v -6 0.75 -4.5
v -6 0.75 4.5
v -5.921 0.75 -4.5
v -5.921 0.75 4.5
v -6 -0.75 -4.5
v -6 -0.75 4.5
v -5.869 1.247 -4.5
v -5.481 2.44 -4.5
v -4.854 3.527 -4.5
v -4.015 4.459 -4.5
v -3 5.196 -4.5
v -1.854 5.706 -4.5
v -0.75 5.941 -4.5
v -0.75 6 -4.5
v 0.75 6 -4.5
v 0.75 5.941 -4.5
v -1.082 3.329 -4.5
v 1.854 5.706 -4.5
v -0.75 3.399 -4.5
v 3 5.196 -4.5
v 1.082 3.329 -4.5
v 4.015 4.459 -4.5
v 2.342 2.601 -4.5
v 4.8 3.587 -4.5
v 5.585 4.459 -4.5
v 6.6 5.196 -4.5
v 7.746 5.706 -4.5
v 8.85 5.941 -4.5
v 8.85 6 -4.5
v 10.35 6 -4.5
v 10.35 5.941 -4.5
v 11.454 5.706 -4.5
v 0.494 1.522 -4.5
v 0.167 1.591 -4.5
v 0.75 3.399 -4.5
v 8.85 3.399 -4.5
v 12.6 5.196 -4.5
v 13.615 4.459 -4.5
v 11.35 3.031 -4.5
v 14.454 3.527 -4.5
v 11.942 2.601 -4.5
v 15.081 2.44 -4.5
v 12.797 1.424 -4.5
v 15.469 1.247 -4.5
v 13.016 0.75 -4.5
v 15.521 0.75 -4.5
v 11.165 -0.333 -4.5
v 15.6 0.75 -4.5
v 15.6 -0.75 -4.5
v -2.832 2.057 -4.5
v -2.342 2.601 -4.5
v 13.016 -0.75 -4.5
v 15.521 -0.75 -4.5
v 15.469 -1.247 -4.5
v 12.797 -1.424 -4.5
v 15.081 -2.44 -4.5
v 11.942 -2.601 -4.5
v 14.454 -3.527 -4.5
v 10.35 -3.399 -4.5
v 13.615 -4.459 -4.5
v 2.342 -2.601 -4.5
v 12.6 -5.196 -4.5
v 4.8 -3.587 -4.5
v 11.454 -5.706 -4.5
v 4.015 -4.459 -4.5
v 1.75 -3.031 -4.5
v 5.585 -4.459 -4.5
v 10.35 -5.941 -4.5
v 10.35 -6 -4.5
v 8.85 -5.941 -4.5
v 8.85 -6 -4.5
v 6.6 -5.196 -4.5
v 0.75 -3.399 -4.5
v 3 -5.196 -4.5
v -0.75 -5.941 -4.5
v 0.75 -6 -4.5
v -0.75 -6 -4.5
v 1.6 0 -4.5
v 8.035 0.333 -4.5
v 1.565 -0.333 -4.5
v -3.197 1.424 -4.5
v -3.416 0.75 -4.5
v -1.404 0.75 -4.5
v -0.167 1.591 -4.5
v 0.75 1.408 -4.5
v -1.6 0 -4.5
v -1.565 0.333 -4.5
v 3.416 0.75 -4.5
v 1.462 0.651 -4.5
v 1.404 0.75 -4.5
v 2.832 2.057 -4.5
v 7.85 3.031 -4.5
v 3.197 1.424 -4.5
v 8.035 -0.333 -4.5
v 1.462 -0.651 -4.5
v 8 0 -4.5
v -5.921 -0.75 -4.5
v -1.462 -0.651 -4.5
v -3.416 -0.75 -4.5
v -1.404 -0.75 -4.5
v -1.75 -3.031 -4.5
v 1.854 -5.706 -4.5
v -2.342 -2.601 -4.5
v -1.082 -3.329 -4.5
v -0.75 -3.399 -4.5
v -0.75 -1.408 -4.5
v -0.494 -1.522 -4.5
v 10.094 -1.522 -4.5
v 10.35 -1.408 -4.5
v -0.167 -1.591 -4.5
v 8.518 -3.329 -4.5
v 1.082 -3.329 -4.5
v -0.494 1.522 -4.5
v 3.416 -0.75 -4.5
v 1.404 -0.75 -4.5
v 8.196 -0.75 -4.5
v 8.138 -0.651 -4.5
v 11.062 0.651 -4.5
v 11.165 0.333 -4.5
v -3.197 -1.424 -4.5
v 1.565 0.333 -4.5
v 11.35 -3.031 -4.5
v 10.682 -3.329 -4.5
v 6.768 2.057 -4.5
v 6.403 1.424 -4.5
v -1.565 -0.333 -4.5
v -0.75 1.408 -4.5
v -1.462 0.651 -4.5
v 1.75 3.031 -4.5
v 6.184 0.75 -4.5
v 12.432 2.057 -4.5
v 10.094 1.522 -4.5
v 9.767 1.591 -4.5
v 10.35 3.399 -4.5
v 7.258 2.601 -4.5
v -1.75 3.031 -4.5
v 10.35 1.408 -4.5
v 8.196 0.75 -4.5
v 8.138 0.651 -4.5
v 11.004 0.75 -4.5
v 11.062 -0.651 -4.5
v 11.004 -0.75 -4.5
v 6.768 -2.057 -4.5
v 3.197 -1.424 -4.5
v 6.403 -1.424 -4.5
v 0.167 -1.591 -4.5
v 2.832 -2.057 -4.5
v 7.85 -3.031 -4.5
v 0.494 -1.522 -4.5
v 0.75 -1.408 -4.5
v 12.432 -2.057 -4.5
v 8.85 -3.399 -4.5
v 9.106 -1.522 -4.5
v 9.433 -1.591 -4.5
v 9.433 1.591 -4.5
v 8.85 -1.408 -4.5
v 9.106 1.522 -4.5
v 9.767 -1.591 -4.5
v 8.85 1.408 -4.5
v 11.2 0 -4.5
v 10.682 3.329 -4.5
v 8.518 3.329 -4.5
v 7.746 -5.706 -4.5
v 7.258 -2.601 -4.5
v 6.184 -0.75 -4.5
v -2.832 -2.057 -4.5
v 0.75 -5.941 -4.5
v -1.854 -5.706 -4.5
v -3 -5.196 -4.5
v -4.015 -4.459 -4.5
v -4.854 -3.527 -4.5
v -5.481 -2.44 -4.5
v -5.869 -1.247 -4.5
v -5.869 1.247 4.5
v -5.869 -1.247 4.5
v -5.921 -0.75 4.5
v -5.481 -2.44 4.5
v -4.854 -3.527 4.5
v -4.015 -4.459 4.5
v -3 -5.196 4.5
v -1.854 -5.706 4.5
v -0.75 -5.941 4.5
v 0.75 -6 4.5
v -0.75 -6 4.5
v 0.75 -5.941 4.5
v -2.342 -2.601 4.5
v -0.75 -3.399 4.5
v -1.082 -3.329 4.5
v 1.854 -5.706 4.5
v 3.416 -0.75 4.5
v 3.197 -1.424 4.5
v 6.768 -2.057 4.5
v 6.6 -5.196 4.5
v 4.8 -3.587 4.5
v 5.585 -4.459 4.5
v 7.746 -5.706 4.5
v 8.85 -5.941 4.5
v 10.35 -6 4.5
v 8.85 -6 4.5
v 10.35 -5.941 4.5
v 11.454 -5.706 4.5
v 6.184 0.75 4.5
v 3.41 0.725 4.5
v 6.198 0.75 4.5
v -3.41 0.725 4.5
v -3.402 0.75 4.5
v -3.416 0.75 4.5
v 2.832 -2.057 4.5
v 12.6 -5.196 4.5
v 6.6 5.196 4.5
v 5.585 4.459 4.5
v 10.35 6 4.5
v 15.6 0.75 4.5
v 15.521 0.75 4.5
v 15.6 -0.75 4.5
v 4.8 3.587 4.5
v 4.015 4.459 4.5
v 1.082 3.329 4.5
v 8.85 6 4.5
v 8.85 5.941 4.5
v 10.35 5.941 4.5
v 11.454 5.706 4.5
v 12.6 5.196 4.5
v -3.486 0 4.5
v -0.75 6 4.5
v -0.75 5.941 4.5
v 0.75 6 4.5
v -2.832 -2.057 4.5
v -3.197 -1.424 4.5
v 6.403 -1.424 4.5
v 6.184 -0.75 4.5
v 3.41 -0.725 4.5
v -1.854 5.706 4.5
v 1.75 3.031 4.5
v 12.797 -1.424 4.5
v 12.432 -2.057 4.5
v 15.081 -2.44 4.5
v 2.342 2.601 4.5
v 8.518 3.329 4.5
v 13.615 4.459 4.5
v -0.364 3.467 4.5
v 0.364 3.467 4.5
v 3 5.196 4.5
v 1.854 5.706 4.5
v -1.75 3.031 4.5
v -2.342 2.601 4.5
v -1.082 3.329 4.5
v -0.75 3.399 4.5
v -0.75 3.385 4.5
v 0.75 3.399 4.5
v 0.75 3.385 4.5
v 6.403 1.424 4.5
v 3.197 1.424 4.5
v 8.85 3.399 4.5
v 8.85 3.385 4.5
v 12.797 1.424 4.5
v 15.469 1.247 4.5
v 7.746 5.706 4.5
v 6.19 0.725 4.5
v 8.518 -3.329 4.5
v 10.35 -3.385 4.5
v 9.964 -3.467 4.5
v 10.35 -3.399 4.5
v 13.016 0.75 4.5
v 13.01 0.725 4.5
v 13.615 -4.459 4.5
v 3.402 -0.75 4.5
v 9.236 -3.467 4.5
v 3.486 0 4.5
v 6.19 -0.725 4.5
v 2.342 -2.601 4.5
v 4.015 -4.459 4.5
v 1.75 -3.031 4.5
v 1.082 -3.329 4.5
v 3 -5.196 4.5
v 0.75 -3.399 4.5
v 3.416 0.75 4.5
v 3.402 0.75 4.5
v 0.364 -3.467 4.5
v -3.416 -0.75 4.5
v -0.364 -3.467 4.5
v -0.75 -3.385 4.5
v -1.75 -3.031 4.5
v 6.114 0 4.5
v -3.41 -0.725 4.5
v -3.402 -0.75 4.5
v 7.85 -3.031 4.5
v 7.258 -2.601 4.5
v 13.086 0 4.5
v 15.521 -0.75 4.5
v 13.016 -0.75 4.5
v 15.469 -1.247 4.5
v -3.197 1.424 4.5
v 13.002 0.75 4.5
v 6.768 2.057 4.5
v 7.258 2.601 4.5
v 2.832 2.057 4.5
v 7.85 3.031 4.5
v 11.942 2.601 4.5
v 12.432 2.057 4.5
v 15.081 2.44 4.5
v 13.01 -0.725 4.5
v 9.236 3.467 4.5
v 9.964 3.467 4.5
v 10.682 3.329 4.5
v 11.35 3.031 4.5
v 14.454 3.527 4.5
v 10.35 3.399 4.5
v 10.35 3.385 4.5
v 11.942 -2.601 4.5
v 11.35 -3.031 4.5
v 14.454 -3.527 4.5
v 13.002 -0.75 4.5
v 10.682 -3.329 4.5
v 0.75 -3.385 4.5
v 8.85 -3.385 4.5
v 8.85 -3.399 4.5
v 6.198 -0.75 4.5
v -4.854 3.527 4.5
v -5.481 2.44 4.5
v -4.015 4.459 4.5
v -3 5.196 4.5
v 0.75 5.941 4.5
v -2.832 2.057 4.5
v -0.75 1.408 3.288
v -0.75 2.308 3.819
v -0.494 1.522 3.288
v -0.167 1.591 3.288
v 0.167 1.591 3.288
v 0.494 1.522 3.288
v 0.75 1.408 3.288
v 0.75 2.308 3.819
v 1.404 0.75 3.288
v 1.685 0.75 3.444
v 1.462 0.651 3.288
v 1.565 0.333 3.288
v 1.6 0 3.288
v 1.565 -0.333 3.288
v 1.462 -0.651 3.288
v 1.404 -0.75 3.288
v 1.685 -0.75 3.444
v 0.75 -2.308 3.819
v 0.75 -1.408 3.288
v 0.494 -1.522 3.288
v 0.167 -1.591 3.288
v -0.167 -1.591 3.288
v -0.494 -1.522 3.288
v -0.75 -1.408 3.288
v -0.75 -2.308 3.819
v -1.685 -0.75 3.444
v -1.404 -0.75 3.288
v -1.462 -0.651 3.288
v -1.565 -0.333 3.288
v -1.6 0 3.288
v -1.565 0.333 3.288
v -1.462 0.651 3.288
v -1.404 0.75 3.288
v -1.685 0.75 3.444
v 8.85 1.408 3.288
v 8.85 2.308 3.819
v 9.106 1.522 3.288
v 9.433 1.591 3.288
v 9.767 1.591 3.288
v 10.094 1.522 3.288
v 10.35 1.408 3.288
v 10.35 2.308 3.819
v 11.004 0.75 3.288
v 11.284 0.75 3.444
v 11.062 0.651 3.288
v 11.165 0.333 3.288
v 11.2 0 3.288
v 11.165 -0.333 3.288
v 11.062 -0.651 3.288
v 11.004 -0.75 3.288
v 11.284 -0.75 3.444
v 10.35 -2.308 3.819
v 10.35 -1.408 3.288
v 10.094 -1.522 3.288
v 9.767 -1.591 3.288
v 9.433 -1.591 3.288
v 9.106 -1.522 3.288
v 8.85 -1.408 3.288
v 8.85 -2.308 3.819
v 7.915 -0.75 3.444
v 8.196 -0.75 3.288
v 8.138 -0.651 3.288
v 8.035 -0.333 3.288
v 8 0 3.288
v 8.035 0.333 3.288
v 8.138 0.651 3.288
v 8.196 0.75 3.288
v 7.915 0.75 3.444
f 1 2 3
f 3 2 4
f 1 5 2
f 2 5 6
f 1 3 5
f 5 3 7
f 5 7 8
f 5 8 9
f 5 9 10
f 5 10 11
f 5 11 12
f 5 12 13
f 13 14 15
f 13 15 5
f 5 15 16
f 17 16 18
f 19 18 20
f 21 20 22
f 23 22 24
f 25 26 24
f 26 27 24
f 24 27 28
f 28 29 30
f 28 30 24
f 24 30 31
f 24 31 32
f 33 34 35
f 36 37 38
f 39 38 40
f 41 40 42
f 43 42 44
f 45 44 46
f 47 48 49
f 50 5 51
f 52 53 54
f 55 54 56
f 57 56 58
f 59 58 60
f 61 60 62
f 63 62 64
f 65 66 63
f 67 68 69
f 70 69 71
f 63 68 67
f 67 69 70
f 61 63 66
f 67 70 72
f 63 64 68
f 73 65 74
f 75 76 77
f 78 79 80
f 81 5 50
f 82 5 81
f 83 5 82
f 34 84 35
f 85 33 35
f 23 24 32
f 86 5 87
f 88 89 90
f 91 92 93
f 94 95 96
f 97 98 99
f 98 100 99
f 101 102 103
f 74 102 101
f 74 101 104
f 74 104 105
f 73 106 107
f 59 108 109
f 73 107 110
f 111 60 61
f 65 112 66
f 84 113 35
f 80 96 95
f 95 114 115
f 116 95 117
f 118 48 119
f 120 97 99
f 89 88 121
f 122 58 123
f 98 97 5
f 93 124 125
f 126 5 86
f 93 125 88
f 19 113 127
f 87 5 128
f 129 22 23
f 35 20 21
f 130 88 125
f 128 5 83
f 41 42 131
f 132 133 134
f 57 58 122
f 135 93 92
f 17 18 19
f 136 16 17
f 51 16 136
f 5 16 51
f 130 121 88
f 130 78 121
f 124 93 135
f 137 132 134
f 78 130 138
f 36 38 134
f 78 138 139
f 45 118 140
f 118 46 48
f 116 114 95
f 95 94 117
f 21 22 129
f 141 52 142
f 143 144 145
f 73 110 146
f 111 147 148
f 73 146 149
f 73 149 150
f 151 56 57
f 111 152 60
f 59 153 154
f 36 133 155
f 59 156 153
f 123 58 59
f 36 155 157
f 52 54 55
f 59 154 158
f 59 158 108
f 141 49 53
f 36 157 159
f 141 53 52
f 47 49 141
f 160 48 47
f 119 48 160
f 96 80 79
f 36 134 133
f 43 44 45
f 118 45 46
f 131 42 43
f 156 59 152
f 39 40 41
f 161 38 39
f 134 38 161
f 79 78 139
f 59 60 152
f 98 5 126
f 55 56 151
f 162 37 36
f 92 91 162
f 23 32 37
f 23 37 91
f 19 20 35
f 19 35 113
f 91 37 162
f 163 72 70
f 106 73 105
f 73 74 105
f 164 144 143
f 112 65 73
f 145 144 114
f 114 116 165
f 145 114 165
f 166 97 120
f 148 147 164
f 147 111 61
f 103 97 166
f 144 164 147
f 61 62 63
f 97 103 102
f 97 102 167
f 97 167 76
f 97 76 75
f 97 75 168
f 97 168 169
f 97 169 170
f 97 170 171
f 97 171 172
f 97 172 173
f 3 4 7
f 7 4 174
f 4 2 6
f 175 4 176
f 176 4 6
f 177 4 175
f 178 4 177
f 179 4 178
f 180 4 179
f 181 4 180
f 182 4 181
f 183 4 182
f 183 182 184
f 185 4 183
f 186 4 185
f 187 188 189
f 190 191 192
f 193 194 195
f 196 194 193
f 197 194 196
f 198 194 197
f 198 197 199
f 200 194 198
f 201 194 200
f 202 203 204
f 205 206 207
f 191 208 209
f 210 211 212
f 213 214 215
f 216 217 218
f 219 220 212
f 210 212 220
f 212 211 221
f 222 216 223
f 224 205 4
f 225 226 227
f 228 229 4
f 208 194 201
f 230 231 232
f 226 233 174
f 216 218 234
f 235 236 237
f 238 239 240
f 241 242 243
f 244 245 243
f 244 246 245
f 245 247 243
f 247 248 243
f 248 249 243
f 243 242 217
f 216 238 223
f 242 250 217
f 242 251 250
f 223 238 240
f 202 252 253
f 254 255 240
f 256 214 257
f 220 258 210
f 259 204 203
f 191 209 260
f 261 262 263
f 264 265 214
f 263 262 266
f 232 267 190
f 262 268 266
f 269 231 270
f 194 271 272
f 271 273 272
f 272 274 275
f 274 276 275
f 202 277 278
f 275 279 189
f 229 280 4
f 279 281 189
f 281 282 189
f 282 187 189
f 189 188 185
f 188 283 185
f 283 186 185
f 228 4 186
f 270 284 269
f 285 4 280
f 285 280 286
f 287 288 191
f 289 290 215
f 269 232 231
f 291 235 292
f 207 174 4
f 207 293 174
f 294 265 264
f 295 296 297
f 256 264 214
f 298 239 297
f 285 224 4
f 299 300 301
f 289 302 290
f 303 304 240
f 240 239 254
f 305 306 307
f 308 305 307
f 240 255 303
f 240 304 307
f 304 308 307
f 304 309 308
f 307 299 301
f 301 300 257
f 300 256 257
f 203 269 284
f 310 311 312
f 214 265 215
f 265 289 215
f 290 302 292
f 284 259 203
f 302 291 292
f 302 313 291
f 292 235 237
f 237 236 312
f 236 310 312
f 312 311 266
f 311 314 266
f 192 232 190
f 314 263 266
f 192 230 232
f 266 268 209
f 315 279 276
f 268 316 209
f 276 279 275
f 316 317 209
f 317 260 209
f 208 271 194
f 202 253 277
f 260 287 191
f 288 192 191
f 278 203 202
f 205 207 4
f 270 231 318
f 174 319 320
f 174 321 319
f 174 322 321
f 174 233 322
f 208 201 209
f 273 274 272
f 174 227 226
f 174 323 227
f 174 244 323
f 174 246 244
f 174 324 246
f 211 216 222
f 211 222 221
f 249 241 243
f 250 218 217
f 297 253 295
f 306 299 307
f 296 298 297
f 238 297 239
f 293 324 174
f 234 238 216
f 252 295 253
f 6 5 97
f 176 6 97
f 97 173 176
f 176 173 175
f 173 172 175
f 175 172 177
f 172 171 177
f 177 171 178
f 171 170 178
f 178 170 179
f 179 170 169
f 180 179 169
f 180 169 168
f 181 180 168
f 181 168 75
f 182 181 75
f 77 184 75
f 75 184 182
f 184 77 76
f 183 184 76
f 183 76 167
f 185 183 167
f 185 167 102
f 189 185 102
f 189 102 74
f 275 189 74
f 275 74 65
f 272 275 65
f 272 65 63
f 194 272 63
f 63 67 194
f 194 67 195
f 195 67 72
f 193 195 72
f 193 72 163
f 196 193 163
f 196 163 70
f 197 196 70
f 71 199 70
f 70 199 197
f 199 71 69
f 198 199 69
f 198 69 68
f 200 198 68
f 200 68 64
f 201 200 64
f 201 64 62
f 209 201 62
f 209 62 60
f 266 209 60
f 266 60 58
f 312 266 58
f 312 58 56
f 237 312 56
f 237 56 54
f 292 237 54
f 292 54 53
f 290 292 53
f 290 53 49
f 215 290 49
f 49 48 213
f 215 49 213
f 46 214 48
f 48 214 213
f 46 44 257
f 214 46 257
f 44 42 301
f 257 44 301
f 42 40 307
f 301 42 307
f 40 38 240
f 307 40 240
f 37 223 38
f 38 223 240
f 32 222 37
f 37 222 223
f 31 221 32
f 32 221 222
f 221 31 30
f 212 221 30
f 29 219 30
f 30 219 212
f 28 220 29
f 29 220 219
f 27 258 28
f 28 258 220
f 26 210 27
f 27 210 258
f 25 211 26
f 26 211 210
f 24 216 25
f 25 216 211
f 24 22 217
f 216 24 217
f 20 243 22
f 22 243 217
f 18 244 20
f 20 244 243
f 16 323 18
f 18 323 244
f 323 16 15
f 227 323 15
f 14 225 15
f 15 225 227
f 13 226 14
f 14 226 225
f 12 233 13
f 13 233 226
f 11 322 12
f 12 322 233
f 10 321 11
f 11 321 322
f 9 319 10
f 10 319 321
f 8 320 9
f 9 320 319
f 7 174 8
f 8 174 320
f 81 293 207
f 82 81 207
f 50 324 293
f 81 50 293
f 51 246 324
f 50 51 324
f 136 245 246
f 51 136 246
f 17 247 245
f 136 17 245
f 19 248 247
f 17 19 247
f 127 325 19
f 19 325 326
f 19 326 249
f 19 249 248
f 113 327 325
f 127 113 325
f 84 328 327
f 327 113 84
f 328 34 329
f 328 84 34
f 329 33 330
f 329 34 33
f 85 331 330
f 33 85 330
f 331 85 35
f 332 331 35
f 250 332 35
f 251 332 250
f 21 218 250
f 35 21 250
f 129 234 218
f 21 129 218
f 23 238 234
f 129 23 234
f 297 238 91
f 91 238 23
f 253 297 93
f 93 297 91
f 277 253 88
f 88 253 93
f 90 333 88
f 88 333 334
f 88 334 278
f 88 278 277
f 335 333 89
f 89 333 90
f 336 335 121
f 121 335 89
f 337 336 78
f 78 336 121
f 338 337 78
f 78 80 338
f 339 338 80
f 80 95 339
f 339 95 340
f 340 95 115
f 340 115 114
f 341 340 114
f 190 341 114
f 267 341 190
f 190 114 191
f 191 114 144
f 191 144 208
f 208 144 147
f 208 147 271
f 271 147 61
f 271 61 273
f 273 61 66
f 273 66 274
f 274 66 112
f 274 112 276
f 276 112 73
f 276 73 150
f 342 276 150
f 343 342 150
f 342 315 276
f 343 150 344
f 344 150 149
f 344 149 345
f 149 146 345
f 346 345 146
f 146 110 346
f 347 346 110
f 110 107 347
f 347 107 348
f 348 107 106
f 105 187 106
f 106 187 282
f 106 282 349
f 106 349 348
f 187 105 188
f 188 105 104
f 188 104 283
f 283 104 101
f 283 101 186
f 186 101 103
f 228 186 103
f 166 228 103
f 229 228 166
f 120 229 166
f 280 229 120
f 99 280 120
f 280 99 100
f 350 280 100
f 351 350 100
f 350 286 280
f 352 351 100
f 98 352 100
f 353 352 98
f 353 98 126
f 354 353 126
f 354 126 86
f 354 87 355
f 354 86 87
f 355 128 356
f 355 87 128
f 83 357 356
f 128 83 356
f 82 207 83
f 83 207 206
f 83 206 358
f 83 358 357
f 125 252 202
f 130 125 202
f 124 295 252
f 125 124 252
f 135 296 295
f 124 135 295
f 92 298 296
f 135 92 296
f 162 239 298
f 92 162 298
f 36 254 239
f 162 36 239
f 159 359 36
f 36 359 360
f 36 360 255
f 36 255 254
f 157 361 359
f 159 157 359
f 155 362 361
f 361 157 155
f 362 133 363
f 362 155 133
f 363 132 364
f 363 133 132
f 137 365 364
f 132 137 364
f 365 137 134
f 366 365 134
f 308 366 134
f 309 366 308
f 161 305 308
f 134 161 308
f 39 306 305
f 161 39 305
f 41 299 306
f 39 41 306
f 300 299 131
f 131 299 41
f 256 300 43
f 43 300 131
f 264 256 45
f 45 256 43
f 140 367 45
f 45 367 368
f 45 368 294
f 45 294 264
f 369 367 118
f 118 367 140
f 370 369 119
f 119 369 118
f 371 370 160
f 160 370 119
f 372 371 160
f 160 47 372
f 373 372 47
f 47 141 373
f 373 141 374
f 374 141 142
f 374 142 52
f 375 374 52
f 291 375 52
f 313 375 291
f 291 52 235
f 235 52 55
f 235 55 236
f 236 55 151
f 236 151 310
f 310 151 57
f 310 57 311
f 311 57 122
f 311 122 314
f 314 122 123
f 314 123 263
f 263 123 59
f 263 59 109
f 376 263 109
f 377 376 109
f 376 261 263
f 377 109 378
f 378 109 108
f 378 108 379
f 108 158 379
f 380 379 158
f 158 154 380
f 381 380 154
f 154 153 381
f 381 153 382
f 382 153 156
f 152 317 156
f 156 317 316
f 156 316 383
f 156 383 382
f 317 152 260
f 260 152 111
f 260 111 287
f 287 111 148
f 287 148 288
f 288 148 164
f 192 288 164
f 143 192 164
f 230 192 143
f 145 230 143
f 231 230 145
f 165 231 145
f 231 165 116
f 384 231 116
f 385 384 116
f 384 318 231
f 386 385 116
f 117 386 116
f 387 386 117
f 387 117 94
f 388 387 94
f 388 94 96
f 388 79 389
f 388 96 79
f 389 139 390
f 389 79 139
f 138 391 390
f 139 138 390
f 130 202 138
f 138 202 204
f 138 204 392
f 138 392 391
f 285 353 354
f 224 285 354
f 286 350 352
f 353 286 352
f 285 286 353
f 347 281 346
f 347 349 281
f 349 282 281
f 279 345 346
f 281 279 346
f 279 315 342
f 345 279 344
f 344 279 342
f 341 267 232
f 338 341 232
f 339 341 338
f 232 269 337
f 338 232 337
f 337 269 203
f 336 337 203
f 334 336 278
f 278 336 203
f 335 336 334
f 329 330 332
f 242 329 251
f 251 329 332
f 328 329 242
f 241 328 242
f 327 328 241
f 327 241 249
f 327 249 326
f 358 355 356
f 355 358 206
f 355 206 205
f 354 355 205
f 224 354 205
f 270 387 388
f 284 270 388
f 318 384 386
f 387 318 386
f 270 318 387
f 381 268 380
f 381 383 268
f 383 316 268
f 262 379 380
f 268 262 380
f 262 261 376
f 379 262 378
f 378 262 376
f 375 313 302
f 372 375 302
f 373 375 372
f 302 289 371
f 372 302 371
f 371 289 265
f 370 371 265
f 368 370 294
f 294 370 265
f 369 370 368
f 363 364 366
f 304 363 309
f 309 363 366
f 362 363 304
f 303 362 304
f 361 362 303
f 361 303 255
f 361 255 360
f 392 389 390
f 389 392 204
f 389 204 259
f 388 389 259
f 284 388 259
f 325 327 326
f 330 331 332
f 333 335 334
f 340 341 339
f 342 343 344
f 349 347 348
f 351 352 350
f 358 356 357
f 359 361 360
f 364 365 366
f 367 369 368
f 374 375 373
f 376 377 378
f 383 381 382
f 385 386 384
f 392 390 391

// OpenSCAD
$fn = 30;
rad_fillamet = 1.6;
rad_clip = 6;
dim_prong = 1.5;
dim_hieght = 9;

inner();
translate([ rad_clip * 1.6, 0, 0])inner();

module inner(){
	rotate([ 180, 0, 0]){
		difference() {
			union(){
				cube([dim_prong, 2 * rad_clip, dim_hieght], center=true);
				rotate([ 0, 0, 90])cube([dim_prong, 2 * rad_clip, dim_hieght], center=true);
			}
			cylinder( h=4 * dim_hieght, r=rad_fillamet, center=true);
			translate([ 0, 0, dim_hieght * -0.376])cylinder( h= 0.25 * dim_hieght, r2 = 0, r1=rad_clip - 2.5, center=true);
		}
		difference() {
			cylinder(r = rad_clip, h=dim_hieght, center=true);
			cylinder(r = rad_clip - 2.5, h=dim_hieght * 2, center=true);
		}
	}
}
